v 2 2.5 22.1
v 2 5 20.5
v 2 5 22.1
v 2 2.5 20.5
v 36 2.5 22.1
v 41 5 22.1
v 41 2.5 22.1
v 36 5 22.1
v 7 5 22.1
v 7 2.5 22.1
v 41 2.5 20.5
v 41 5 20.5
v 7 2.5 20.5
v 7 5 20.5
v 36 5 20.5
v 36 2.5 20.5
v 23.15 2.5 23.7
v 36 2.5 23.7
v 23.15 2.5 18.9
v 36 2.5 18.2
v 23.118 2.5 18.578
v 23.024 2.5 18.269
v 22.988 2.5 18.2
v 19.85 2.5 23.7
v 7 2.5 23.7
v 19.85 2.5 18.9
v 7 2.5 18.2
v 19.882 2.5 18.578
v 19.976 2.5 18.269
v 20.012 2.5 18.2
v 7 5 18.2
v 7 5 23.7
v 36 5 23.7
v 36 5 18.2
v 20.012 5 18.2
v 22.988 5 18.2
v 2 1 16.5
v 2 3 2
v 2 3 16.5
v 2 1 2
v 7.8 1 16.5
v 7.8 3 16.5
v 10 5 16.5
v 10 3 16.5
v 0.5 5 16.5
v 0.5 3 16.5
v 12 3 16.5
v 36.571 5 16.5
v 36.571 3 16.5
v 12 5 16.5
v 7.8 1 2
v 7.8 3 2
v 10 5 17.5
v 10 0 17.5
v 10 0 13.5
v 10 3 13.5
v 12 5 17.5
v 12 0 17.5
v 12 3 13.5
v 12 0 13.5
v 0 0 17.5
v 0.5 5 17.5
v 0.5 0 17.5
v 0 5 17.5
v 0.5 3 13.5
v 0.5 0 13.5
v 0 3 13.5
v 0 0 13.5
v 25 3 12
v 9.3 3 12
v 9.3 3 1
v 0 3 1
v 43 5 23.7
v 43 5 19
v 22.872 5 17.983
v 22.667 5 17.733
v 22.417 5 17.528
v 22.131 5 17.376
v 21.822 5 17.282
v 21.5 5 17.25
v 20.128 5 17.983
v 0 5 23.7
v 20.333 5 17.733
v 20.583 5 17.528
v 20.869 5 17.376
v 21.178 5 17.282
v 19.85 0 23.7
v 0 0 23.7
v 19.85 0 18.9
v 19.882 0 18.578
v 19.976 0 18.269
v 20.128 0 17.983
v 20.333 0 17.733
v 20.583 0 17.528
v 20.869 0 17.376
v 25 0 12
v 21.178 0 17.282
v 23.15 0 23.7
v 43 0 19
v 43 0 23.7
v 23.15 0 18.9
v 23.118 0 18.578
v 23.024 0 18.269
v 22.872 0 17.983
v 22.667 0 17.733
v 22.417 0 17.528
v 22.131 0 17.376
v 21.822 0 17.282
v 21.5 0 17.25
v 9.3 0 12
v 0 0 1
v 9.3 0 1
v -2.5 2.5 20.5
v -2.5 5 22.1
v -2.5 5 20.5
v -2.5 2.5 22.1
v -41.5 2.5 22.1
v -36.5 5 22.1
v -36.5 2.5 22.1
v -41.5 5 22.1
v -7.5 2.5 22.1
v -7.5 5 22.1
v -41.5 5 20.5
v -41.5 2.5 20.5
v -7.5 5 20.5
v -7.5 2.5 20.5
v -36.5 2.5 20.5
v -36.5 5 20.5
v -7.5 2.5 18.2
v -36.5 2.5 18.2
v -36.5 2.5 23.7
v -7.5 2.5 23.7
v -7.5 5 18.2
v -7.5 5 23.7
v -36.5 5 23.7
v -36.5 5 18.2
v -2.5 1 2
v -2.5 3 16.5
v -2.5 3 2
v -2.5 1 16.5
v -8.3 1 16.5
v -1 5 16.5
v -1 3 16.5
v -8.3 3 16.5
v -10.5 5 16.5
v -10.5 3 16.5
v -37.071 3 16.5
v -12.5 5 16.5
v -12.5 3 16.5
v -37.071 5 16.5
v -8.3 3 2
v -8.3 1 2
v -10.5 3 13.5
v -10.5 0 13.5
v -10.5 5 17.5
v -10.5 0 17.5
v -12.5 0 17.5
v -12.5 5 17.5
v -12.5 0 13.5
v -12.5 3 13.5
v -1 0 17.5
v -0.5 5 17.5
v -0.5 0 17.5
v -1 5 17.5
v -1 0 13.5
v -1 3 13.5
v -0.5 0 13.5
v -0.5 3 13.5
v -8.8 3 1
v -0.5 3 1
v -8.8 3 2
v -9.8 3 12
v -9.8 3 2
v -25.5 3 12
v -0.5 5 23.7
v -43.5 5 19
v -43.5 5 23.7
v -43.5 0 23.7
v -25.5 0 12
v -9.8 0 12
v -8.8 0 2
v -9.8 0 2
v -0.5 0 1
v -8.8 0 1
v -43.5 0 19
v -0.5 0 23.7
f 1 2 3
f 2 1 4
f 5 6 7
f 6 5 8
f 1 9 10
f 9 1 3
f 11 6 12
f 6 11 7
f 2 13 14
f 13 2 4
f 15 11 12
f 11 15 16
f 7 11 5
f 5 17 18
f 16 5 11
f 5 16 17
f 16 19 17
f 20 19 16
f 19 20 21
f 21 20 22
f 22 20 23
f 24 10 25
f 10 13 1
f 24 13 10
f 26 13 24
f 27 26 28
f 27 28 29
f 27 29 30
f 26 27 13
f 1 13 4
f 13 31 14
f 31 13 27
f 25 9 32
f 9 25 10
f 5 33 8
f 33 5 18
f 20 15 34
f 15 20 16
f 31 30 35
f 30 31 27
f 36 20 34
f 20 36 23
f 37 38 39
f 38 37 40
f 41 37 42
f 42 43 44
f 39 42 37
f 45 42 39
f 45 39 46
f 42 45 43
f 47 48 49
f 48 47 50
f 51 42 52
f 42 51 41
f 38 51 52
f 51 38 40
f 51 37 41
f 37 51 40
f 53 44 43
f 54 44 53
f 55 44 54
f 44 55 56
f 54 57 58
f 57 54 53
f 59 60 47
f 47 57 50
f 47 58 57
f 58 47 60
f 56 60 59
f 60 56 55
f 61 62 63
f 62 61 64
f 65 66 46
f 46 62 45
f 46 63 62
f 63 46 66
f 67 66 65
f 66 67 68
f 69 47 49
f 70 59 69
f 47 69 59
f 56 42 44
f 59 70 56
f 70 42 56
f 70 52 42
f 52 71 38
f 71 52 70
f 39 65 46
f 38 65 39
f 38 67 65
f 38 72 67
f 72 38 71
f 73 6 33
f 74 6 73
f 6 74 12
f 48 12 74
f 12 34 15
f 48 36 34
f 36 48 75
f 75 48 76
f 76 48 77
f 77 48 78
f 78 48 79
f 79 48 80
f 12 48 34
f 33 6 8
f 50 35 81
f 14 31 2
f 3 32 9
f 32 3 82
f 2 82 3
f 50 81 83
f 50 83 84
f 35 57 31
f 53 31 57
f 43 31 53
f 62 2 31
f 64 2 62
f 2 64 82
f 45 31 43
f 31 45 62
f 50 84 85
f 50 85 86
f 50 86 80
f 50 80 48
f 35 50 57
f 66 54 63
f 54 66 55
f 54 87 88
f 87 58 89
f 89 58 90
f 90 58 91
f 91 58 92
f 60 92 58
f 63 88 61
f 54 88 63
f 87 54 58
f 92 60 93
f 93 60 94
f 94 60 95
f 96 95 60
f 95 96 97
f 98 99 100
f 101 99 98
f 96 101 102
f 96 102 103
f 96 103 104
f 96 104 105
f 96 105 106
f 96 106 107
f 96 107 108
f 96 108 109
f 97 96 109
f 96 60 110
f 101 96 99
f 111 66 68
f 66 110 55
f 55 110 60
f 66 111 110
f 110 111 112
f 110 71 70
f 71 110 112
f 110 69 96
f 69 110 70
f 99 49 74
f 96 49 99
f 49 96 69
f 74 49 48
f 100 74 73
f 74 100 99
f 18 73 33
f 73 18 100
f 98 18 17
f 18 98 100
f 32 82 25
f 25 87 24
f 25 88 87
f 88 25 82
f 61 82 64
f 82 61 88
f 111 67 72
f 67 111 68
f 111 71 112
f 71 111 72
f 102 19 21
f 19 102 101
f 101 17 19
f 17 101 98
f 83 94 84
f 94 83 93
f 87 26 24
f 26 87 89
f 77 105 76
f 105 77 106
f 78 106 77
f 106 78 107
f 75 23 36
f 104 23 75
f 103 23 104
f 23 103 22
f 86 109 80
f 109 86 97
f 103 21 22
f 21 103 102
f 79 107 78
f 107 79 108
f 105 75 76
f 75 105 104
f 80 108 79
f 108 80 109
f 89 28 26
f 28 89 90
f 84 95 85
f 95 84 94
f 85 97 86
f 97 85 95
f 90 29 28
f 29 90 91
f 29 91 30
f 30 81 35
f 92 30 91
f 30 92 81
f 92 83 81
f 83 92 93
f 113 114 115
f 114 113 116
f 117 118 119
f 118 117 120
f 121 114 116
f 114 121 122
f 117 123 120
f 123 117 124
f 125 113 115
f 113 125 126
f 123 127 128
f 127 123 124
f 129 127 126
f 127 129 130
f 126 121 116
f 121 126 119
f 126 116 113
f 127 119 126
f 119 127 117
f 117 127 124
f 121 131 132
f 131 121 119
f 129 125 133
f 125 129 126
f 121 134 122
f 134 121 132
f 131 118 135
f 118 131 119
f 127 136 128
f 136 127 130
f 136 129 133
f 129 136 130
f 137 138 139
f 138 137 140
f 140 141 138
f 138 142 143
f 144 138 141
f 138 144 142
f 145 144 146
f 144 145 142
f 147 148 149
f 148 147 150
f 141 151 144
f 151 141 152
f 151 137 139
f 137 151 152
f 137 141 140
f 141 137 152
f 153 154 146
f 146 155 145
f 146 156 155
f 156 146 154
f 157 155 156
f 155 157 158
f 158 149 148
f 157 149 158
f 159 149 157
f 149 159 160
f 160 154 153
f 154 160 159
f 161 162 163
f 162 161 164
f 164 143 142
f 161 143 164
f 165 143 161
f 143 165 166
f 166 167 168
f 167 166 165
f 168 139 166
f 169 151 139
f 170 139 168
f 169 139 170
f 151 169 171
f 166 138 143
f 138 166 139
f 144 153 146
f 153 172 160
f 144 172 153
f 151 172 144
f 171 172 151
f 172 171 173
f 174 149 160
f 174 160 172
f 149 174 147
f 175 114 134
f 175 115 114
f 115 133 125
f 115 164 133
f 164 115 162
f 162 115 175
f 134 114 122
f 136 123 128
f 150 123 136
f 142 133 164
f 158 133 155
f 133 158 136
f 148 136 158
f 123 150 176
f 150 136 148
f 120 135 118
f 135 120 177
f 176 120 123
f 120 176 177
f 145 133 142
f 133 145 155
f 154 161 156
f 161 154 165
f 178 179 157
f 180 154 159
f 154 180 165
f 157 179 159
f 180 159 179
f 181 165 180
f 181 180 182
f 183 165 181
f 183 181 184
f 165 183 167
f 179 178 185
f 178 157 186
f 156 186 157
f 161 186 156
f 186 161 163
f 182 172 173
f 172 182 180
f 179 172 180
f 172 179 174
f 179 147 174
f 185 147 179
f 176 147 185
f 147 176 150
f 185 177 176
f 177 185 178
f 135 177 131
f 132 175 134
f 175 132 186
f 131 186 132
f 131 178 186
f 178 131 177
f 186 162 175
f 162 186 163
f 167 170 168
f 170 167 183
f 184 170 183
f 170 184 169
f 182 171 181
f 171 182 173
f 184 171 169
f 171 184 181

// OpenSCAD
$fn = 32;

//connectorWidth = 37.5;
//boardWidth = 41;
connectorWidth = 56;
boardWidth = 53;

module parts() {
    translate([-0.5, 3, -0.5]) cube([40, 5, 17]);
    translate([2, 2.5, 2]) {
        // connector
        translate([0, (boardWidth-connectorWidth) / 2, 0]) cube([5.8, connectorWidth, 14.5]);
        // board
        translate([0, 0, 18.5]) {
            #cube([39, boardWidth, 1.6]);
            translate([5, 0, - 2.3]) cube([29, boardWidth, 10]);
        }
        // fix 1
        translate([8, - 5, 11.5]) cube([2, 50, 4]);
        // fix 2
        translate([- 3.5, - 5, 11.5]) cube([2, 50, 4]);
    }
}


module reduction() {
    difference() {
        rotate([90, 0]) {
            translate([0, 0, - 5])
                linear_extrude(5) {
                    hull() {
                        translate([0, 19]) square([43, 4.7]);
                        translate([0, 12]) square([25, 5]);
                    }
                    translate([0,1]) square([9.3, 11]);
                }
        }
        parts();
    }
}

difference() {
    reduction();
    translate([(39)/2+2,9,18.5+0.4]) {
            rotate([90, 0]) hull() {
                #linear_extrude(10) circle(d = 3.3);
                translate([0,10]) linear_extrude(10) circle(d = 3.3);
            }
        }
}

difference() {
    translate([- 0.5, 0])
        mirror([- 1, 0])
            reduction();
    translate([-14.8+1,0,0]) cube([5,10,2]);
}
